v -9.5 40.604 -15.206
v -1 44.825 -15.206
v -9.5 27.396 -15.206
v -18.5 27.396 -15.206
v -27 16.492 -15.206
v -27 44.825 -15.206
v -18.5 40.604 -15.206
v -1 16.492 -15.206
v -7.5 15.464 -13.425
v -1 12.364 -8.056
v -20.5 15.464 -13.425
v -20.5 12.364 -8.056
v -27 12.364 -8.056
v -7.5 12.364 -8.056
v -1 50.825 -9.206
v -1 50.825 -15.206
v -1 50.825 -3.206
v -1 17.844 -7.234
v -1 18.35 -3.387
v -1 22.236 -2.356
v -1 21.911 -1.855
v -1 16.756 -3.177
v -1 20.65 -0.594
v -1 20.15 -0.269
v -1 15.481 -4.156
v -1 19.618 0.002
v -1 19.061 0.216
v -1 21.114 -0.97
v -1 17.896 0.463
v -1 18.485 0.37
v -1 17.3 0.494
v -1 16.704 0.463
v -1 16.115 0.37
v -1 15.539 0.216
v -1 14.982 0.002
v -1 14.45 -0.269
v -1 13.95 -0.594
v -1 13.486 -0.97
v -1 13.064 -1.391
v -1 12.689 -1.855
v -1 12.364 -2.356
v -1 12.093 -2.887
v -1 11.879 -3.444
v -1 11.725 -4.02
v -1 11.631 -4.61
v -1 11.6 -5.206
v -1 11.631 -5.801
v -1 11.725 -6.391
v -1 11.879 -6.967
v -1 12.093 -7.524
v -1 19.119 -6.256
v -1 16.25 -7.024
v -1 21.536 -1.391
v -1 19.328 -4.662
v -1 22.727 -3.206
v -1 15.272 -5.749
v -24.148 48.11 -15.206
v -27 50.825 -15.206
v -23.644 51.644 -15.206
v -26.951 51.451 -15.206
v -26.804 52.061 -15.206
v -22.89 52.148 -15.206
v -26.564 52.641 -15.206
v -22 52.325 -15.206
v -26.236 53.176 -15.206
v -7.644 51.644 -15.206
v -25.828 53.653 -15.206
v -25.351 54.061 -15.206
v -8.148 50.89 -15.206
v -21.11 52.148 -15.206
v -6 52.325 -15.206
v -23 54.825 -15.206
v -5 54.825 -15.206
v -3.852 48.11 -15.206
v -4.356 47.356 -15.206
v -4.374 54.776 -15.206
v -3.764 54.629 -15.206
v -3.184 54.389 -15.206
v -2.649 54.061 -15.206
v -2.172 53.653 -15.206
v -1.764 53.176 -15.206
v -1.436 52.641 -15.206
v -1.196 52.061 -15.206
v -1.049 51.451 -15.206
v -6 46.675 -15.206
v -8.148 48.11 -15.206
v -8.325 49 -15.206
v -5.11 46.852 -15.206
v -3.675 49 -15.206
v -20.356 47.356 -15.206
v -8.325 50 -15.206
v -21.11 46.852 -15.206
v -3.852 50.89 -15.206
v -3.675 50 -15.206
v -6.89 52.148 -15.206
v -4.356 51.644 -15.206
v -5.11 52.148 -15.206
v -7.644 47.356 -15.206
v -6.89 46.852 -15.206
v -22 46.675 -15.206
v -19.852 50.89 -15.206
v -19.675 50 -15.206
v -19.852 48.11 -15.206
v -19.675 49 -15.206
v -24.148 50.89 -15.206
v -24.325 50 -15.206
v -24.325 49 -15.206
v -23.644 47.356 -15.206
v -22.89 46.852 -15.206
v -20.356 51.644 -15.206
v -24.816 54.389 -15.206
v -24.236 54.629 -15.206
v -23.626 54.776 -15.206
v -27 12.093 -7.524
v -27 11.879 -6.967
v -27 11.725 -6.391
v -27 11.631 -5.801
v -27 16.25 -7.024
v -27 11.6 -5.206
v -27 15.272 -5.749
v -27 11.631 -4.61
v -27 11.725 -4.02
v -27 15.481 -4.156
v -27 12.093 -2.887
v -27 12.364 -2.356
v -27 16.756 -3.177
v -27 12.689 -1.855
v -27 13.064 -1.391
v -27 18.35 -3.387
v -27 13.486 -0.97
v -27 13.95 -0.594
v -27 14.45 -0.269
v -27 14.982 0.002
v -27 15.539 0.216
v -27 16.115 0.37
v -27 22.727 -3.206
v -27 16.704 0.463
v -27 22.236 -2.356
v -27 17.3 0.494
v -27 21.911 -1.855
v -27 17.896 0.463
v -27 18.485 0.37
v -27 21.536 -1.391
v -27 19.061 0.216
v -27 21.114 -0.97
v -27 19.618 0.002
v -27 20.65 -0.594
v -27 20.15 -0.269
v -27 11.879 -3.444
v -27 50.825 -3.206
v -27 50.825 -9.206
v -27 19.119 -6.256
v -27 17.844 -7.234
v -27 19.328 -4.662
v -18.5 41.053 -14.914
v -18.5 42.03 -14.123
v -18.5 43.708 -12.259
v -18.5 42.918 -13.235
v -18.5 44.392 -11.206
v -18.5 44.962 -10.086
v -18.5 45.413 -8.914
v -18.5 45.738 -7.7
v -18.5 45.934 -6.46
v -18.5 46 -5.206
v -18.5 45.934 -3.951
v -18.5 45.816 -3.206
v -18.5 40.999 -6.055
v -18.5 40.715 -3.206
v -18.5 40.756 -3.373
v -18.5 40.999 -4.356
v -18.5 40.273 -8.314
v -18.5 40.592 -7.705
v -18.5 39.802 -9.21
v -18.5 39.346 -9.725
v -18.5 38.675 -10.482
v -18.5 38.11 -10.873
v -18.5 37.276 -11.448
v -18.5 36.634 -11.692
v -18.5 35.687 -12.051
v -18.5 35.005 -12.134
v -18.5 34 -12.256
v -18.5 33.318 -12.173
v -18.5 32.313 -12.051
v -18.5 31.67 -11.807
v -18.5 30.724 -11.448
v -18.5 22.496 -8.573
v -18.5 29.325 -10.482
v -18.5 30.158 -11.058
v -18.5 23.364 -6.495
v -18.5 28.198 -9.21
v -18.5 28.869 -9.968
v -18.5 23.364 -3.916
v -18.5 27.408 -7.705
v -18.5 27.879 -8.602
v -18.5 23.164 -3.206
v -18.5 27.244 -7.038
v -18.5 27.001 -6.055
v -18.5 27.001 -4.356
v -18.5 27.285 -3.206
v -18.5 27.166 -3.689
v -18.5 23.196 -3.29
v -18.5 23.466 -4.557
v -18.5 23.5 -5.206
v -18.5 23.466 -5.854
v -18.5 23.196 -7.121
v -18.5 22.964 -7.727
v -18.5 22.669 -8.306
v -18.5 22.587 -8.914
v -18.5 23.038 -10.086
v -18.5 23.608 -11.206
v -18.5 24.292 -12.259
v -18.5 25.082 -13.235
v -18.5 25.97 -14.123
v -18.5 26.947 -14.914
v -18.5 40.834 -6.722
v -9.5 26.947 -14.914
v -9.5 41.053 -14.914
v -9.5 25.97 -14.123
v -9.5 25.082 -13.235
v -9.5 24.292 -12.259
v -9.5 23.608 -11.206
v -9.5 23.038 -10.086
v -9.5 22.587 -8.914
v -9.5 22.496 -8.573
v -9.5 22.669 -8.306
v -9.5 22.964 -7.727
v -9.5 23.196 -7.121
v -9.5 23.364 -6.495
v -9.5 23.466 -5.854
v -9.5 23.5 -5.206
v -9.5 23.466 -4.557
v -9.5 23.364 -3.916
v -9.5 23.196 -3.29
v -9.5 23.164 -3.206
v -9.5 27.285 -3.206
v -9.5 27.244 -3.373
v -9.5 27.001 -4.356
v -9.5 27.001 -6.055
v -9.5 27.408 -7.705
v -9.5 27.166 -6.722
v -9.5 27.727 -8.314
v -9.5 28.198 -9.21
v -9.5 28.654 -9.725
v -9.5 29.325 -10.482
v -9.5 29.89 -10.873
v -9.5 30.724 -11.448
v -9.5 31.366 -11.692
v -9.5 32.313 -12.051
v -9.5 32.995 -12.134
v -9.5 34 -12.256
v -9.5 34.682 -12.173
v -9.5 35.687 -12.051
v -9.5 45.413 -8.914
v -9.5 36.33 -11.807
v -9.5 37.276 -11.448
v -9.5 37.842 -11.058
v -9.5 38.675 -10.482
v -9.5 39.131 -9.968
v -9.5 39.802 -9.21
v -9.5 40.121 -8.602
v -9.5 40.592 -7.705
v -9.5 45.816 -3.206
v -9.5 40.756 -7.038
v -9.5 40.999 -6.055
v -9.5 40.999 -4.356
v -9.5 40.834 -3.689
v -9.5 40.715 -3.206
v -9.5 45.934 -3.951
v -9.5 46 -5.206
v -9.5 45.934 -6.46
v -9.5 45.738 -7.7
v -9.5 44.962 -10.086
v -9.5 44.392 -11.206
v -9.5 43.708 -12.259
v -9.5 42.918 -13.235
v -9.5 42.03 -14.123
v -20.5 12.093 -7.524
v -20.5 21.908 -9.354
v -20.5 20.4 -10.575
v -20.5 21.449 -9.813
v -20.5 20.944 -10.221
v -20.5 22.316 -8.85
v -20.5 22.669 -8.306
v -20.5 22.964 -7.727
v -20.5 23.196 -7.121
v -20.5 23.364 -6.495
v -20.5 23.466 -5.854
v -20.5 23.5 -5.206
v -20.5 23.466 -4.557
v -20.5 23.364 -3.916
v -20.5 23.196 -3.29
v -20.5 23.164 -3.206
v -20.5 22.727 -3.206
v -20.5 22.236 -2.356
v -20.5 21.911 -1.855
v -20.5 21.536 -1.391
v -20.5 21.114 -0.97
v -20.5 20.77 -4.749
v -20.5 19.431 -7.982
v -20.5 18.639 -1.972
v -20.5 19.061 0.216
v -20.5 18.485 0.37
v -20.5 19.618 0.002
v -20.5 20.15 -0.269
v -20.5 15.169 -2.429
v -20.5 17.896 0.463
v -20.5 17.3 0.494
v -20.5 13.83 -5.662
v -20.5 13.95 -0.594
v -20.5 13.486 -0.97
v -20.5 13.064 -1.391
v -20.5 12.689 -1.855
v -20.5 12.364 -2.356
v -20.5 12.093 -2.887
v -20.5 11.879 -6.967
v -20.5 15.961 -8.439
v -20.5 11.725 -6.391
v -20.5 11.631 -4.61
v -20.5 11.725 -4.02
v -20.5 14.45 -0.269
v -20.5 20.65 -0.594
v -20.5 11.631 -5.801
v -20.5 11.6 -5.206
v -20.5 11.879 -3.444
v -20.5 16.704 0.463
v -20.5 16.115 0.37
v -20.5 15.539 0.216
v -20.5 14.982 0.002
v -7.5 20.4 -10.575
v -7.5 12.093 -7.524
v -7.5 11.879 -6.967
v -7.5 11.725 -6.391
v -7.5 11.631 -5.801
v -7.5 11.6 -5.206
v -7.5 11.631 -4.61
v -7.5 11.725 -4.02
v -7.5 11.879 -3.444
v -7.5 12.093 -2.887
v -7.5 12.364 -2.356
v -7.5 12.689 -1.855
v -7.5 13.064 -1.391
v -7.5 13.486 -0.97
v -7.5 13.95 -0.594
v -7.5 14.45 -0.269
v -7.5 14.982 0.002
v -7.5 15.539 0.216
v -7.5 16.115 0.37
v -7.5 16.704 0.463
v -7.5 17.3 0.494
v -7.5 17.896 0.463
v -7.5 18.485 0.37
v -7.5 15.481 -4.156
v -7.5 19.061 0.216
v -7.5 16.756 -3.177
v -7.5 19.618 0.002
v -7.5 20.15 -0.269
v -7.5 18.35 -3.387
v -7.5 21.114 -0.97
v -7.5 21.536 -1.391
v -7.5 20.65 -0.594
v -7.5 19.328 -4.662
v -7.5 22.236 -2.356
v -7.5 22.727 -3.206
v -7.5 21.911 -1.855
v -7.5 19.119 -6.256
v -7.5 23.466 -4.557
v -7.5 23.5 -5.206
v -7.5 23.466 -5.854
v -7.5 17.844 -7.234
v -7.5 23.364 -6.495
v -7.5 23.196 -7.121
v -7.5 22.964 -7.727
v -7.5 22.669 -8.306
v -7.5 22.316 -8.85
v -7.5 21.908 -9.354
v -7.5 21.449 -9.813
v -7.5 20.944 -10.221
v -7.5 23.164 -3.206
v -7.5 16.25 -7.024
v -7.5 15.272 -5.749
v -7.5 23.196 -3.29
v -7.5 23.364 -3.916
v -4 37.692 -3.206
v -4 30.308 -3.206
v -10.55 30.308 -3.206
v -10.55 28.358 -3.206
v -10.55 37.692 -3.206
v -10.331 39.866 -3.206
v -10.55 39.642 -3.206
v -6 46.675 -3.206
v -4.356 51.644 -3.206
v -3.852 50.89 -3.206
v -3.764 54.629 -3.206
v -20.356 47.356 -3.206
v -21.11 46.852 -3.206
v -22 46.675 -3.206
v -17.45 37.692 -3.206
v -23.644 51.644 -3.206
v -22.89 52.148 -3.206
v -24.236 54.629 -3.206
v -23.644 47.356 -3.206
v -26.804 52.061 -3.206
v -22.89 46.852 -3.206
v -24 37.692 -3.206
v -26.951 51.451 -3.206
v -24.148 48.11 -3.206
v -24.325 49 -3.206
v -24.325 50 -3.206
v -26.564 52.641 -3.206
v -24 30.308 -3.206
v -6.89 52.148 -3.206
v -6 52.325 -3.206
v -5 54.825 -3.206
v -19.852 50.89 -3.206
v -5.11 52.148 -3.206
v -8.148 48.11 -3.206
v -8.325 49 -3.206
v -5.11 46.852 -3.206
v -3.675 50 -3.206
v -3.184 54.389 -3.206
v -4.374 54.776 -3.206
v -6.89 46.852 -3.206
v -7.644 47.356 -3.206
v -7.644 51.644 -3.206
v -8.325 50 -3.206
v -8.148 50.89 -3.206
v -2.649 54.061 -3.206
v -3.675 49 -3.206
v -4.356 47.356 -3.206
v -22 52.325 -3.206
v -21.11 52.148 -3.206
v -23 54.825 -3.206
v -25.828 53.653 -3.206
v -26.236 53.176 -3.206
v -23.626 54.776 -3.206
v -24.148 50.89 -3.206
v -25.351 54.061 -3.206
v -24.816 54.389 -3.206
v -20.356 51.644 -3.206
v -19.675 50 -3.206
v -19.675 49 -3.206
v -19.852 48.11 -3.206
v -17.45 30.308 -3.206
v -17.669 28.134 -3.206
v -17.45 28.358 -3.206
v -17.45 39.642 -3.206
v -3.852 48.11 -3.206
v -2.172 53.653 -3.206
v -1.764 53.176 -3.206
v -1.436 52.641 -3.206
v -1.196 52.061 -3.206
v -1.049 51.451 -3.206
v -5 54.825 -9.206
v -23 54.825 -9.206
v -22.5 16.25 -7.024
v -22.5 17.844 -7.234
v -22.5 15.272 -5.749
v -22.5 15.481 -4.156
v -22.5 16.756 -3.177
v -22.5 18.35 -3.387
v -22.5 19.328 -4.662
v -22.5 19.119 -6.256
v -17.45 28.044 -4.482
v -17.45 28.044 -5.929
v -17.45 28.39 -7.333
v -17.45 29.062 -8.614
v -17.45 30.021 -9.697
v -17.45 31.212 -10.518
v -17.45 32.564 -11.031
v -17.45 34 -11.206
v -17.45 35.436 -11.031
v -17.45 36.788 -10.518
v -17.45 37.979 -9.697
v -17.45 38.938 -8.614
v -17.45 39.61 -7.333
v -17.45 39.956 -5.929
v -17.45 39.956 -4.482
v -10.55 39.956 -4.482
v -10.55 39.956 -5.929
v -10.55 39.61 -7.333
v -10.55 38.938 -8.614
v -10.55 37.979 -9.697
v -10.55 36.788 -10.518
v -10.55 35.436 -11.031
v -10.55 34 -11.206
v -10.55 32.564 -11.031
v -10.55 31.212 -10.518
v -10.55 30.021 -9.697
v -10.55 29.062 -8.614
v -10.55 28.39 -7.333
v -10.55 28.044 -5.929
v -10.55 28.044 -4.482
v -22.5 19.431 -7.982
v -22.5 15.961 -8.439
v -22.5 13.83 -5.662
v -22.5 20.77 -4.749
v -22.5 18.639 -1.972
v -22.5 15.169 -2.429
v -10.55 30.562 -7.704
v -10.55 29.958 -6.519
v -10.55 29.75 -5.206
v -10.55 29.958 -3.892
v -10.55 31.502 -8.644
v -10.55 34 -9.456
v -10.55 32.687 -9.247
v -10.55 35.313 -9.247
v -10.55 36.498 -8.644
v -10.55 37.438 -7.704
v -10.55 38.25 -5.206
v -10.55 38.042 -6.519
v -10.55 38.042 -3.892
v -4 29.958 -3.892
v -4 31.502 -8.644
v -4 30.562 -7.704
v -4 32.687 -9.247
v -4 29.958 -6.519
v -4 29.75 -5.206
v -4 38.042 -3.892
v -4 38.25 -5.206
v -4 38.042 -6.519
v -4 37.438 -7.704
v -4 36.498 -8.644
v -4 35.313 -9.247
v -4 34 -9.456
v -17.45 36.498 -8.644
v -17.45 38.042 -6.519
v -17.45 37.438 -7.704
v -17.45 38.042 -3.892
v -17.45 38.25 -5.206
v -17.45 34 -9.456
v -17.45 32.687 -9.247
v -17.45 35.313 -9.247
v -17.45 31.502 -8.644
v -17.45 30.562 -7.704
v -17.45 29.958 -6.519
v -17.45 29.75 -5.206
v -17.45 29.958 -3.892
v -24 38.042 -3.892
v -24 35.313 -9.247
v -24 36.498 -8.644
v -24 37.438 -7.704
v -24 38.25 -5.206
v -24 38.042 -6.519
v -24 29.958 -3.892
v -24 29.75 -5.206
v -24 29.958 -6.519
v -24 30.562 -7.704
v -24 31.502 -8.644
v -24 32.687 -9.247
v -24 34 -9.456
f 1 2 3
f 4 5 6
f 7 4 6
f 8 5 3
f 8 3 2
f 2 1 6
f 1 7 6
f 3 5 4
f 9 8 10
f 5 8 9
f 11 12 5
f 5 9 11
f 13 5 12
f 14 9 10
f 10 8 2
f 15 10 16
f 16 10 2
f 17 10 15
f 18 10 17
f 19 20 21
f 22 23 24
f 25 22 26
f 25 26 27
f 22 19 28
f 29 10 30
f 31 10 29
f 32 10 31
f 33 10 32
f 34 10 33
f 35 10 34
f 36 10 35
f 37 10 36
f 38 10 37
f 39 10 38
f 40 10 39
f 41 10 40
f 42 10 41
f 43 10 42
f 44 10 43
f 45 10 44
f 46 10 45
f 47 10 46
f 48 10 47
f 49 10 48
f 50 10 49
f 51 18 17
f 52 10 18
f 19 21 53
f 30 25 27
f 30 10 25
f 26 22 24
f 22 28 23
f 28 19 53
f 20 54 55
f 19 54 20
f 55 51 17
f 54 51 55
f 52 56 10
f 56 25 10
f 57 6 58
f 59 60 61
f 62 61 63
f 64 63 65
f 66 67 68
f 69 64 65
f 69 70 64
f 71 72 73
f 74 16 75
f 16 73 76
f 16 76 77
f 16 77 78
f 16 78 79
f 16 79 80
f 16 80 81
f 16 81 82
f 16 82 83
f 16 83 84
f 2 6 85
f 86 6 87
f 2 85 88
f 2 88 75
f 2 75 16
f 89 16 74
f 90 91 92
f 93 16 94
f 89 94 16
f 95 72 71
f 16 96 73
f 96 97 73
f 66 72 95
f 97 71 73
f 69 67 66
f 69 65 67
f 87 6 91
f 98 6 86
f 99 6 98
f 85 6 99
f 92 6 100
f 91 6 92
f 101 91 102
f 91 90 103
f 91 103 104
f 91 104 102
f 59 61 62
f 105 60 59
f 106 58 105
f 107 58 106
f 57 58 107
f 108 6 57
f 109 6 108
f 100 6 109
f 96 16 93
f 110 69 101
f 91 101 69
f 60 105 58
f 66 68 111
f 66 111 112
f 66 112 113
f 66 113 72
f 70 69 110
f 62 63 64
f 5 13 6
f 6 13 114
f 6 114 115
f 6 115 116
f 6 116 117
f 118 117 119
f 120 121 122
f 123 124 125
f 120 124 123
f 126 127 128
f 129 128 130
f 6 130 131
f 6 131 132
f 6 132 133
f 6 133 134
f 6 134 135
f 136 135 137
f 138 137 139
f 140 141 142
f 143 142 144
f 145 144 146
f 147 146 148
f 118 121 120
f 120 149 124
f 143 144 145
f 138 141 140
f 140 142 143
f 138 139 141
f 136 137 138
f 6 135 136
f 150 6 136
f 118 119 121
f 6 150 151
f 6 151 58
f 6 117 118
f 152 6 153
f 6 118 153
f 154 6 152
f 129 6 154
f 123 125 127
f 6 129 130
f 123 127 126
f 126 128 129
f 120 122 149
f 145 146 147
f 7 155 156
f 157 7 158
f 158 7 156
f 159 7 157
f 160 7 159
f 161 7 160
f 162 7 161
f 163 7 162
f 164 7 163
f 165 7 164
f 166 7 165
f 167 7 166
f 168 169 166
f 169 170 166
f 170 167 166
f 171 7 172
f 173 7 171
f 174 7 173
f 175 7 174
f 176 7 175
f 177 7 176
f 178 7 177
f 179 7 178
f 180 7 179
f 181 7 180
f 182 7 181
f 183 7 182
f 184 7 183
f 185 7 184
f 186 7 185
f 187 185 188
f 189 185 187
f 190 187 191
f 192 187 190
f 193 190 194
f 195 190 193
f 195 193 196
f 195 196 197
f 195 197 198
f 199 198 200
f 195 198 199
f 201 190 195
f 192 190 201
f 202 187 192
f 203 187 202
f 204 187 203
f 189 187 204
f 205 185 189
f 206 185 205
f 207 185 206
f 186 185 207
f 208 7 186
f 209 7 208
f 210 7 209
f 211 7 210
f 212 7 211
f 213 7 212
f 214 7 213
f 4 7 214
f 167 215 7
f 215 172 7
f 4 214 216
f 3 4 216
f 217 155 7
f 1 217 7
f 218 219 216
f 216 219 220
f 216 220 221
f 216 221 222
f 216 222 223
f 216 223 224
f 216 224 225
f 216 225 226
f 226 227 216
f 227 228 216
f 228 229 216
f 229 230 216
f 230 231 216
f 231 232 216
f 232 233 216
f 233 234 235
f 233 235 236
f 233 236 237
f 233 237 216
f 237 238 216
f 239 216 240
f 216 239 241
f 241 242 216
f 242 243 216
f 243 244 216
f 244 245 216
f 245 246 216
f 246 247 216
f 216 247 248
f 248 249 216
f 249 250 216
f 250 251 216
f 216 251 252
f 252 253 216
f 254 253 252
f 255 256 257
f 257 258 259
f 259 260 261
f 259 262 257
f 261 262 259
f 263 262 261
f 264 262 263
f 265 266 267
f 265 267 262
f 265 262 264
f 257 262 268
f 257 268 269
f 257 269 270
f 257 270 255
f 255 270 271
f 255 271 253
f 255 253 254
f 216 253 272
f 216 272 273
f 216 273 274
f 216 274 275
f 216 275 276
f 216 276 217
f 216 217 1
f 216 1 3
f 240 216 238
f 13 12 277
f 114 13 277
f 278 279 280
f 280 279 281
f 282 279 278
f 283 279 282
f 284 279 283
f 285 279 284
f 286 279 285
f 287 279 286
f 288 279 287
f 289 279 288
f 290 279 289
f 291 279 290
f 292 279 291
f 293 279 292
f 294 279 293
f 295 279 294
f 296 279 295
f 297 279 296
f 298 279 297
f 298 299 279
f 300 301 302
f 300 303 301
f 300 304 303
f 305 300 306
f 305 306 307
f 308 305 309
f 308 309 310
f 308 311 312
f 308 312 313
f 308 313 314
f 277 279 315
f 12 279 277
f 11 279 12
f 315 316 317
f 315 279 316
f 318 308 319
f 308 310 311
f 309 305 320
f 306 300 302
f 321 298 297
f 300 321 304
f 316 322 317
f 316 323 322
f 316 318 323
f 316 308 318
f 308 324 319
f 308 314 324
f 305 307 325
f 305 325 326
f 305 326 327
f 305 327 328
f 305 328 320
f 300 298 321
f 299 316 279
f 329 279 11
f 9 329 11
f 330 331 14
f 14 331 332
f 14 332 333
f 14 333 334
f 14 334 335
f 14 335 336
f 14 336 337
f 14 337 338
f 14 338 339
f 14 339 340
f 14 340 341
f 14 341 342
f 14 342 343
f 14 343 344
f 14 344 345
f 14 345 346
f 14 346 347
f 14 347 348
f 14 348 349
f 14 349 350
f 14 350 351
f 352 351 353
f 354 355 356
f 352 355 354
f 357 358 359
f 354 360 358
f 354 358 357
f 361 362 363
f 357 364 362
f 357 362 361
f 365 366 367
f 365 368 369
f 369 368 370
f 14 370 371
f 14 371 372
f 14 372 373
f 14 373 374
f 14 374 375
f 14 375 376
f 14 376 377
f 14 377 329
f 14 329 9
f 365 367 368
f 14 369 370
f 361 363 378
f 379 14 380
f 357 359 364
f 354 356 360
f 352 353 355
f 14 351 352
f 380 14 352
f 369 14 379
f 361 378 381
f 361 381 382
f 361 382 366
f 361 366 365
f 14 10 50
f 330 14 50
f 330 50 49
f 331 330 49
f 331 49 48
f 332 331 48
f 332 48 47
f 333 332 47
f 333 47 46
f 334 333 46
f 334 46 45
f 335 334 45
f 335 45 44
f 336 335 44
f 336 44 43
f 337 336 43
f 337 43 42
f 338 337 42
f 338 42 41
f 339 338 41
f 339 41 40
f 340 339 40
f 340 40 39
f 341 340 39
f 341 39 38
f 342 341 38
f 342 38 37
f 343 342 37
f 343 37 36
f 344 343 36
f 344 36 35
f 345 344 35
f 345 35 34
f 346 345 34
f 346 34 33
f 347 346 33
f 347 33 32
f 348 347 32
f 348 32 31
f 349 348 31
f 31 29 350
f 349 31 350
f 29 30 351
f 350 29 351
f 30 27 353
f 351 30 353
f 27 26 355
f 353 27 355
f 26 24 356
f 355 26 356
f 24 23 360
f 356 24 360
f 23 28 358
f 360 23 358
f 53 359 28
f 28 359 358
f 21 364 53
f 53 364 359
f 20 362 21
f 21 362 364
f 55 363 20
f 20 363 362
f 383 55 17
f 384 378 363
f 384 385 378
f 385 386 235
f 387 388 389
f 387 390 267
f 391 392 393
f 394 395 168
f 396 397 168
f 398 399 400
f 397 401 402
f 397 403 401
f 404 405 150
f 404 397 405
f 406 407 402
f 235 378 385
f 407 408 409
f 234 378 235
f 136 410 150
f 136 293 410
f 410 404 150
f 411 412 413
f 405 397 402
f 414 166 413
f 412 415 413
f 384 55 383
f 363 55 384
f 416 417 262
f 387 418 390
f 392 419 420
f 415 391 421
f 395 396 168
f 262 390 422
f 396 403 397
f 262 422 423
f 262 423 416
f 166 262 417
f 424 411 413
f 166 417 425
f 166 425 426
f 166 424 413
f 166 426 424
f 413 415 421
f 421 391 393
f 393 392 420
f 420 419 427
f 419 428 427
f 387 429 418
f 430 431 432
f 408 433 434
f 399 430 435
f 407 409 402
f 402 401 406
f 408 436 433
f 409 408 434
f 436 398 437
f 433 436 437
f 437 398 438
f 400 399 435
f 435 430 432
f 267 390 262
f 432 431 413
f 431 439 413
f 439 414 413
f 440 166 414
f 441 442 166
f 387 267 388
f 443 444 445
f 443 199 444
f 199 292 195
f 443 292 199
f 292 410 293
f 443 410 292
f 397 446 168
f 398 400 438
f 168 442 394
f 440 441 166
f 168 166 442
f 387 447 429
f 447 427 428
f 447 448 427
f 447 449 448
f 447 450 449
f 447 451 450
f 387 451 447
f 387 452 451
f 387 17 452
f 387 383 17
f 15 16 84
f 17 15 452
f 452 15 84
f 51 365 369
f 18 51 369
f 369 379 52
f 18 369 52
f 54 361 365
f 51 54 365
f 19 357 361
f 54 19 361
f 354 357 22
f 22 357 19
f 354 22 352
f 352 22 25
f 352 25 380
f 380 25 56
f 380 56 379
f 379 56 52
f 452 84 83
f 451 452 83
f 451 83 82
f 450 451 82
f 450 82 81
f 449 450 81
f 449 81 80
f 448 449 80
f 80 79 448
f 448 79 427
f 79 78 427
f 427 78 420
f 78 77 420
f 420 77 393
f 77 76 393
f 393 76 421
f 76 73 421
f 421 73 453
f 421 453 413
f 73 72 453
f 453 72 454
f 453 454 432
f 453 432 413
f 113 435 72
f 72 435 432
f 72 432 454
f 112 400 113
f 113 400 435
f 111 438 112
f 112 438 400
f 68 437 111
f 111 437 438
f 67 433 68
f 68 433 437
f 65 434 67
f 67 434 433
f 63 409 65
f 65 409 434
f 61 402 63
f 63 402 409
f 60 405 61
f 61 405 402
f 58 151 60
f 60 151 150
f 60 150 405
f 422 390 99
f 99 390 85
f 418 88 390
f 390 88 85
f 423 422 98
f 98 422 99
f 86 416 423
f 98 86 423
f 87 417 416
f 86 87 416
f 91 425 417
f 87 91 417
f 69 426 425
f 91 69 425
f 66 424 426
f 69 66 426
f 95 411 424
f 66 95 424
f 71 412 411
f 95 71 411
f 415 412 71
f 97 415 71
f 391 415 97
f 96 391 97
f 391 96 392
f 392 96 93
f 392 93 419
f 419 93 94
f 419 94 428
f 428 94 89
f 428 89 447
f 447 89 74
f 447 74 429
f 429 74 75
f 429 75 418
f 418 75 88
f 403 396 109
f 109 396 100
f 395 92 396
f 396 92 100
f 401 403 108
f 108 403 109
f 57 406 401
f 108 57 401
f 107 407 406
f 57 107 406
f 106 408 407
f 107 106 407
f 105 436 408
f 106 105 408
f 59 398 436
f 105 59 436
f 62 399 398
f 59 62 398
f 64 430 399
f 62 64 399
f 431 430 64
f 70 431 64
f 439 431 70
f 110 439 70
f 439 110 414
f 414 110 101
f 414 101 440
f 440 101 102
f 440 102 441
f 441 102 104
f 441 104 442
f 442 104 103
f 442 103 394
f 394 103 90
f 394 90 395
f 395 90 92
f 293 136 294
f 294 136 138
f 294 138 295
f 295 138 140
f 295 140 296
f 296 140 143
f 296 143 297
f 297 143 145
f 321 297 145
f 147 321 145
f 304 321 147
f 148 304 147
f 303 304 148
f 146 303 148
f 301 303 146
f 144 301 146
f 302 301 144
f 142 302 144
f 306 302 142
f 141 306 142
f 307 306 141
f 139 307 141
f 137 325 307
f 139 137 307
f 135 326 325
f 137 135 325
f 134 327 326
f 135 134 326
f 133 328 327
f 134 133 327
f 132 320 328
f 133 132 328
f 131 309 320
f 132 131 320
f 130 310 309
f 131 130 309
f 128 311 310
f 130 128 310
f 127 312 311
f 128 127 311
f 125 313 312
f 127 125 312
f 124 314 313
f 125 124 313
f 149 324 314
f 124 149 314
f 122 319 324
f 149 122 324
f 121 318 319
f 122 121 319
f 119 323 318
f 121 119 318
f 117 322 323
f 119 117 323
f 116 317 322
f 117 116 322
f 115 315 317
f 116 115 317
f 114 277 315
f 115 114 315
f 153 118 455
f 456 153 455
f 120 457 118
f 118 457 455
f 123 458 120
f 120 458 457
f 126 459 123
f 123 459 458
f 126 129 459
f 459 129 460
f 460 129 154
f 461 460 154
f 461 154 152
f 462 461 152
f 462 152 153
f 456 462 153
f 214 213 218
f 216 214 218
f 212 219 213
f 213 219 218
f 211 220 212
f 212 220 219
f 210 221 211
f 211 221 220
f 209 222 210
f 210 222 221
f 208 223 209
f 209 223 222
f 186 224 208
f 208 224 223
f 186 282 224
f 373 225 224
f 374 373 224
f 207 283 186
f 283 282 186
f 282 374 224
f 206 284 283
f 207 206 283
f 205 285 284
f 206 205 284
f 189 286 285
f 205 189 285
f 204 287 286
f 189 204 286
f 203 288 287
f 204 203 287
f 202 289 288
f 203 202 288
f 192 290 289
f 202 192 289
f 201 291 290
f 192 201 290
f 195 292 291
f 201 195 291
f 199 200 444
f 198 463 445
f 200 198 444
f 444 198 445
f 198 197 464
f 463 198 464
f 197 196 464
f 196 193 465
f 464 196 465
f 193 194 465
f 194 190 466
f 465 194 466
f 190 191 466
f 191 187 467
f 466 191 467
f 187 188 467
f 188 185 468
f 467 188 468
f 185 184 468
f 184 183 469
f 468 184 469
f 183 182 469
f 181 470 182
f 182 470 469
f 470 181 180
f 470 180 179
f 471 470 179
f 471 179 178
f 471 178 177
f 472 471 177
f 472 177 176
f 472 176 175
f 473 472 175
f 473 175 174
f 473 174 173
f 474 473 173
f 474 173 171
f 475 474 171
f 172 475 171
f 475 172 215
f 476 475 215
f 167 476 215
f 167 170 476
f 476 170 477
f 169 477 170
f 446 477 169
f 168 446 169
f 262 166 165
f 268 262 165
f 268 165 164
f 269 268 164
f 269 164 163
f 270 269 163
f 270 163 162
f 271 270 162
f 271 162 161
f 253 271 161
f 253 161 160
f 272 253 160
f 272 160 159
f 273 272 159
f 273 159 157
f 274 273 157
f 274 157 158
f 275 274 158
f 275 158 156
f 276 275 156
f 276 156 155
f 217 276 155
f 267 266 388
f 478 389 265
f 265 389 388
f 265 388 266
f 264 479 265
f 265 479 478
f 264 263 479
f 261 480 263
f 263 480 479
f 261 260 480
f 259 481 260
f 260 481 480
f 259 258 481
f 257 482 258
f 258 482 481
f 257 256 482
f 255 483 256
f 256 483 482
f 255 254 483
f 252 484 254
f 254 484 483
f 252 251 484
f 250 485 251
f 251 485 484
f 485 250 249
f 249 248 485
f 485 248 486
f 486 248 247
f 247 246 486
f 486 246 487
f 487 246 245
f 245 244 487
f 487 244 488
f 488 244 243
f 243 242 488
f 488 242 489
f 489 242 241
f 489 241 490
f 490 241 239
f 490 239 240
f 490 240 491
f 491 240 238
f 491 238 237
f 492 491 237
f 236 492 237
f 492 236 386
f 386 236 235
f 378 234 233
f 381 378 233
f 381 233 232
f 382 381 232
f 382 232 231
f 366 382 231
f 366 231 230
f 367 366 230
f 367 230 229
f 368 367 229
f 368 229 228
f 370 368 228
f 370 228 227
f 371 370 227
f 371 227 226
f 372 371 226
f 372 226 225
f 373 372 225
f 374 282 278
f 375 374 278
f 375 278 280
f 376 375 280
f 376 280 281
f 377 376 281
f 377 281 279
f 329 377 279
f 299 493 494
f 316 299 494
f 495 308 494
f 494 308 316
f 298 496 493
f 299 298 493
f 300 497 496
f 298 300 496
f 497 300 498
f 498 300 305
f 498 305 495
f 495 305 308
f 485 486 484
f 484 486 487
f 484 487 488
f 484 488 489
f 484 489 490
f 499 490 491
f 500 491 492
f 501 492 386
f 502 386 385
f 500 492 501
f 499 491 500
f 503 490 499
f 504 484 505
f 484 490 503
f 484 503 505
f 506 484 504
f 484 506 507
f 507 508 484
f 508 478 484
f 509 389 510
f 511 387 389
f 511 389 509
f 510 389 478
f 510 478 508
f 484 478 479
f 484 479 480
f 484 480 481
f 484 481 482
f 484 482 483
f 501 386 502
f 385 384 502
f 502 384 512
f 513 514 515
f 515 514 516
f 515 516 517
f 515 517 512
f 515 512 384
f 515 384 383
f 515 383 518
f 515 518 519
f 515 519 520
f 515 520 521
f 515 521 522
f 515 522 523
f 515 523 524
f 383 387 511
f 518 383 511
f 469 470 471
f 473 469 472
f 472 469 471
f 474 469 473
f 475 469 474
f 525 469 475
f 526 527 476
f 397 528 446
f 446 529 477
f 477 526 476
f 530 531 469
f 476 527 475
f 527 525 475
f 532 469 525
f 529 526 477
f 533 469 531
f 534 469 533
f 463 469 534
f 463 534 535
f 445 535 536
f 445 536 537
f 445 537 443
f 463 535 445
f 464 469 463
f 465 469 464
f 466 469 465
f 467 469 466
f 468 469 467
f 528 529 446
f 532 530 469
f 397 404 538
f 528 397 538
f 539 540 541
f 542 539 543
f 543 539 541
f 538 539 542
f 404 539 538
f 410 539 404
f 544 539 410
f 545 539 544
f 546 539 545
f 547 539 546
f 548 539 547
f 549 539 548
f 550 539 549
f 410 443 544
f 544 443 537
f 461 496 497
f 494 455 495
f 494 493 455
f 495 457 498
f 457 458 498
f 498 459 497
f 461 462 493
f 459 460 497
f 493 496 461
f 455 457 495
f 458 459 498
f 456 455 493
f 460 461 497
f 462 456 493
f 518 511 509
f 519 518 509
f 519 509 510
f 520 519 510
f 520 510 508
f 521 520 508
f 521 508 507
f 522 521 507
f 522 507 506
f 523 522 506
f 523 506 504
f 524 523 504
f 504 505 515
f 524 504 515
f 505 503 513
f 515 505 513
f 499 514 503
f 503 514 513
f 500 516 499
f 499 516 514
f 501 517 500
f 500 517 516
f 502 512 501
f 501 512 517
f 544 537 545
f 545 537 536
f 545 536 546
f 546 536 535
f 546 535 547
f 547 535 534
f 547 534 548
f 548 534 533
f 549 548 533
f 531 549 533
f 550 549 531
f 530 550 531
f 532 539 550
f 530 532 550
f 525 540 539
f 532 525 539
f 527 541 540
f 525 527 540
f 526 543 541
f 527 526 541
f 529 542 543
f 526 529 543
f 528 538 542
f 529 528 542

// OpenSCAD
// authors:  thigiverse (link), l. miller, f. beachler
// see (link) for GPL license

// TODO move to a config SCAD, see other TODOs
variant=0; //0 for metric
//variant=1; //1 for SAE
if(variant==0){
echo("variant: metric");
}else if(variant==1){
echo("variant: sae");
} else{
echo("WARNING: INVALID CONFIGURATION");
}

vars=[
//[m8_dia, m8_nut, m4_dia, m4_nut, m3_dia, m3_nut, bush_dia, mot_shaft, bush_rod, bush_outerdia, bush_length]
[9,16.4,5,9,4.4,7,11,5.3,8,16,11],//metric
[9,15.7,5.5,10.6,5.5,10.6,11.5,5.3,7.9375,16,11]//SAE
];

//DO NOT TOUCH THIS SECTION!
m8_diameter = vars[variant][0];
m8_nut_diameter = vars[variant][1];
m4_diameter = vars[variant][2];
m4_nut_diameter = vars[variant][3];
m3_diameter = vars[variant][4];
m3_nut_diameter = vars[variant][5];
bushing_diameter = vars[variant][6];
motor_shaft=vars[variant][7];
bushing_rodsize = vars[variant][8];
bushing_outerDiameter = vars[variant][9];
bushing_lenght = vars[variant][10];

base_thickness=7;
base_length=70;
base_leadout=25;

nema17_hole_spacing=1.2*25.4; 
nema17_width=1.7*25.4;
nema17_support_d=nema17_width-nema17_hole_spacing;

screw_head_recess_diameter=7.2;
screw_head_recess_depth=3;

motor_mount_rotation=25;
motor_mount_translation=[50.5,34,0];
motor_mount_thickness=12;

m8_clearance_hole=8.8;
hole_for_608=22.6;
608_diameter=22;
echo(608_diameter);

layer_thickness=0.4;
filament_feed_hole_d=4;
filament_diameter=3;
filament_feed_hole_offset=filament_diameter+0.5;
idler_nut_trap_depth=7.5;
idler_nut_thickness=3;

wade_block_height=55;
wade_block_width=24;
wade_block_depth=28;

gear_separation=7.4444+32.0111+0.25;

filament_pinch=[
	motor_mount_translation[0]-gear_separation-filament_feed_hole_offset-filament_diameter/2,
	motor_mount_translation[1],
	wade_block_depth/2];
idler_axis=filament_pinch-[608_diameter/2,0,0];
idler_fulcrum_offset=608_diameter/2+3.5+m3_diameter/2;
idler_fulcrum=idler_axis-[0,idler_fulcrum_offset,0];
idler_corners_radius=4; 
idler_height=12;
idler_608_diameter=608_diameter+2;
idler_608_height=9;
idler_mounting_hole_across=8;
idler_mounting_hole_up=15;
idler_short_side=wade_block_depth-2;
idler_hinge_r=m3_diameter/2+3.5;
idler_hinge_width=6.5;
idler_end_length=(idler_height-2)+5;
idler_mounting_hole_diameter=m3_diameter+0.25;
idler_mounting_hole_elongation=1;
idler_long_top=idler_mounting_hole_up+idler_mounting_hole_diameter/2+idler_mounting_hole_elongation+2.5;
idler_long_bottom=idler_fulcrum_offset;
idler_long_side=idler_long_top+idler_long_bottom;

rotate([0, -90, 0]) wadeidler();

// TODO parametrize
module wadeidler() {
	difference() {
		union() {
			//The idler block.
			translate(idler_axis+[-idler_height/2+2,+idler_long_side/2-idler_long_bottom,0])
			cube([idler_height,idler_long_side,idler_short_side],center=true);

			// The fulcrum Hinge
			translate(idler_fulcrum)
			rotate([0,0,-30]) {
				cylinder(h=idler_short_side,r=idler_hinge_r,center=true,$fn=60);
				translate([-idler_end_length/2,0,0])
					cube([idler_end_length,idler_hinge_r*2,idler_short_side],center=true);
			}		
		}

		//Back of idler.
		translate(idler_axis+[-idler_height/2+2-idler_height, idler_long_side/2-idler_long_bottom-10,0])
			cube([idler_height,idler_long_side,idler_short_side],center=true);

		//Slot for idler fulcrum mount.
		translate(idler_fulcrum)
		{
			cylinder(h=idler_short_side-2*idler_hinge_width,
				r=idler_hinge_r+0.5,center=true,$fn=60);
			rotate(-30)
				translate([0,-idler_hinge_r-0.5,0])
					cube([idler_hinge_r*2+1,idler_hinge_r*2+1, idler_short_side-2*idler_hinge_width],center=true);
		}

		//Bearing cutout.
		translate(idler_axis) {
			difference() {
				cylinder(h=idler_608_height,r=idler_608_diameter/2,
					center=true,$fn=60);
				for (i=[0,1])
					rotate([180*i,0,0])
						translate([0,0,6.9/2])
							cylinder(r1=12/2,r2=16/2,h=2);
			}
			cylinder(h=idler_short_side-6,r=m8_diameter/2-0.25/*Tight*/,
				center=true,$fn=20);
		}

		//Fulcrum hole.
		translate(idler_fulcrum)
			rotate(360/12)
				cylinder(h=idler_short_side+2,r=m3_diameter/2-0.1,center=true,$fn=8);
		//Nut trap for fulcrum screw.
		translate(idler_fulcrum+[0,0,idler_short_side/2-idler_hinge_width-1])
			rotate(360/16)
				cylinder(h=3,r=m3_nut_diameter/2,$fn=6);

		for(idler_screw_hole=[-1,1])
			translate(idler_axis+[2-idler_height,0,0]) {
				//Screw Holes.
				translate([-1,idler_mounting_hole_up, idler_screw_hole*idler_mounting_hole_across])
				rotate([0,90,0]) {
					cylinder(r=idler_mounting_hole_diameter/2,h=idler_height+2,$fn=16);
					translate([0,idler_mounting_hole_elongation,0])
						cylinder(r=idler_mounting_hole_diameter/2,h=idler_height+2,$fn=16);
					translate([-idler_mounting_hole_diameter/2,0,0])
						cube([idler_mounting_hole_diameter,idler_mounting_hole_elongation, idler_height+2]);
				}

			// Rounded corners.
			render()
				translate([idler_height/2,idler_long_top, idler_screw_hole*(idler_short_side/2)])
					difference() {
						translate([0,-idler_corners_radius/2+0.5,-idler_screw_hole*(idler_corners_radius/2-0.5)])
						cube([idler_height+2,idler_corners_radius+1,idler_corners_radius+1], center=true);
						rotate([0,90,0])
							translate([idler_screw_hole*idler_corners_radius,-idler_corners_radius,0])
								cylinder(h=idler_height+4,r=idler_corners_radius,center=true,$fn=40);
					}
			}
	}
}
